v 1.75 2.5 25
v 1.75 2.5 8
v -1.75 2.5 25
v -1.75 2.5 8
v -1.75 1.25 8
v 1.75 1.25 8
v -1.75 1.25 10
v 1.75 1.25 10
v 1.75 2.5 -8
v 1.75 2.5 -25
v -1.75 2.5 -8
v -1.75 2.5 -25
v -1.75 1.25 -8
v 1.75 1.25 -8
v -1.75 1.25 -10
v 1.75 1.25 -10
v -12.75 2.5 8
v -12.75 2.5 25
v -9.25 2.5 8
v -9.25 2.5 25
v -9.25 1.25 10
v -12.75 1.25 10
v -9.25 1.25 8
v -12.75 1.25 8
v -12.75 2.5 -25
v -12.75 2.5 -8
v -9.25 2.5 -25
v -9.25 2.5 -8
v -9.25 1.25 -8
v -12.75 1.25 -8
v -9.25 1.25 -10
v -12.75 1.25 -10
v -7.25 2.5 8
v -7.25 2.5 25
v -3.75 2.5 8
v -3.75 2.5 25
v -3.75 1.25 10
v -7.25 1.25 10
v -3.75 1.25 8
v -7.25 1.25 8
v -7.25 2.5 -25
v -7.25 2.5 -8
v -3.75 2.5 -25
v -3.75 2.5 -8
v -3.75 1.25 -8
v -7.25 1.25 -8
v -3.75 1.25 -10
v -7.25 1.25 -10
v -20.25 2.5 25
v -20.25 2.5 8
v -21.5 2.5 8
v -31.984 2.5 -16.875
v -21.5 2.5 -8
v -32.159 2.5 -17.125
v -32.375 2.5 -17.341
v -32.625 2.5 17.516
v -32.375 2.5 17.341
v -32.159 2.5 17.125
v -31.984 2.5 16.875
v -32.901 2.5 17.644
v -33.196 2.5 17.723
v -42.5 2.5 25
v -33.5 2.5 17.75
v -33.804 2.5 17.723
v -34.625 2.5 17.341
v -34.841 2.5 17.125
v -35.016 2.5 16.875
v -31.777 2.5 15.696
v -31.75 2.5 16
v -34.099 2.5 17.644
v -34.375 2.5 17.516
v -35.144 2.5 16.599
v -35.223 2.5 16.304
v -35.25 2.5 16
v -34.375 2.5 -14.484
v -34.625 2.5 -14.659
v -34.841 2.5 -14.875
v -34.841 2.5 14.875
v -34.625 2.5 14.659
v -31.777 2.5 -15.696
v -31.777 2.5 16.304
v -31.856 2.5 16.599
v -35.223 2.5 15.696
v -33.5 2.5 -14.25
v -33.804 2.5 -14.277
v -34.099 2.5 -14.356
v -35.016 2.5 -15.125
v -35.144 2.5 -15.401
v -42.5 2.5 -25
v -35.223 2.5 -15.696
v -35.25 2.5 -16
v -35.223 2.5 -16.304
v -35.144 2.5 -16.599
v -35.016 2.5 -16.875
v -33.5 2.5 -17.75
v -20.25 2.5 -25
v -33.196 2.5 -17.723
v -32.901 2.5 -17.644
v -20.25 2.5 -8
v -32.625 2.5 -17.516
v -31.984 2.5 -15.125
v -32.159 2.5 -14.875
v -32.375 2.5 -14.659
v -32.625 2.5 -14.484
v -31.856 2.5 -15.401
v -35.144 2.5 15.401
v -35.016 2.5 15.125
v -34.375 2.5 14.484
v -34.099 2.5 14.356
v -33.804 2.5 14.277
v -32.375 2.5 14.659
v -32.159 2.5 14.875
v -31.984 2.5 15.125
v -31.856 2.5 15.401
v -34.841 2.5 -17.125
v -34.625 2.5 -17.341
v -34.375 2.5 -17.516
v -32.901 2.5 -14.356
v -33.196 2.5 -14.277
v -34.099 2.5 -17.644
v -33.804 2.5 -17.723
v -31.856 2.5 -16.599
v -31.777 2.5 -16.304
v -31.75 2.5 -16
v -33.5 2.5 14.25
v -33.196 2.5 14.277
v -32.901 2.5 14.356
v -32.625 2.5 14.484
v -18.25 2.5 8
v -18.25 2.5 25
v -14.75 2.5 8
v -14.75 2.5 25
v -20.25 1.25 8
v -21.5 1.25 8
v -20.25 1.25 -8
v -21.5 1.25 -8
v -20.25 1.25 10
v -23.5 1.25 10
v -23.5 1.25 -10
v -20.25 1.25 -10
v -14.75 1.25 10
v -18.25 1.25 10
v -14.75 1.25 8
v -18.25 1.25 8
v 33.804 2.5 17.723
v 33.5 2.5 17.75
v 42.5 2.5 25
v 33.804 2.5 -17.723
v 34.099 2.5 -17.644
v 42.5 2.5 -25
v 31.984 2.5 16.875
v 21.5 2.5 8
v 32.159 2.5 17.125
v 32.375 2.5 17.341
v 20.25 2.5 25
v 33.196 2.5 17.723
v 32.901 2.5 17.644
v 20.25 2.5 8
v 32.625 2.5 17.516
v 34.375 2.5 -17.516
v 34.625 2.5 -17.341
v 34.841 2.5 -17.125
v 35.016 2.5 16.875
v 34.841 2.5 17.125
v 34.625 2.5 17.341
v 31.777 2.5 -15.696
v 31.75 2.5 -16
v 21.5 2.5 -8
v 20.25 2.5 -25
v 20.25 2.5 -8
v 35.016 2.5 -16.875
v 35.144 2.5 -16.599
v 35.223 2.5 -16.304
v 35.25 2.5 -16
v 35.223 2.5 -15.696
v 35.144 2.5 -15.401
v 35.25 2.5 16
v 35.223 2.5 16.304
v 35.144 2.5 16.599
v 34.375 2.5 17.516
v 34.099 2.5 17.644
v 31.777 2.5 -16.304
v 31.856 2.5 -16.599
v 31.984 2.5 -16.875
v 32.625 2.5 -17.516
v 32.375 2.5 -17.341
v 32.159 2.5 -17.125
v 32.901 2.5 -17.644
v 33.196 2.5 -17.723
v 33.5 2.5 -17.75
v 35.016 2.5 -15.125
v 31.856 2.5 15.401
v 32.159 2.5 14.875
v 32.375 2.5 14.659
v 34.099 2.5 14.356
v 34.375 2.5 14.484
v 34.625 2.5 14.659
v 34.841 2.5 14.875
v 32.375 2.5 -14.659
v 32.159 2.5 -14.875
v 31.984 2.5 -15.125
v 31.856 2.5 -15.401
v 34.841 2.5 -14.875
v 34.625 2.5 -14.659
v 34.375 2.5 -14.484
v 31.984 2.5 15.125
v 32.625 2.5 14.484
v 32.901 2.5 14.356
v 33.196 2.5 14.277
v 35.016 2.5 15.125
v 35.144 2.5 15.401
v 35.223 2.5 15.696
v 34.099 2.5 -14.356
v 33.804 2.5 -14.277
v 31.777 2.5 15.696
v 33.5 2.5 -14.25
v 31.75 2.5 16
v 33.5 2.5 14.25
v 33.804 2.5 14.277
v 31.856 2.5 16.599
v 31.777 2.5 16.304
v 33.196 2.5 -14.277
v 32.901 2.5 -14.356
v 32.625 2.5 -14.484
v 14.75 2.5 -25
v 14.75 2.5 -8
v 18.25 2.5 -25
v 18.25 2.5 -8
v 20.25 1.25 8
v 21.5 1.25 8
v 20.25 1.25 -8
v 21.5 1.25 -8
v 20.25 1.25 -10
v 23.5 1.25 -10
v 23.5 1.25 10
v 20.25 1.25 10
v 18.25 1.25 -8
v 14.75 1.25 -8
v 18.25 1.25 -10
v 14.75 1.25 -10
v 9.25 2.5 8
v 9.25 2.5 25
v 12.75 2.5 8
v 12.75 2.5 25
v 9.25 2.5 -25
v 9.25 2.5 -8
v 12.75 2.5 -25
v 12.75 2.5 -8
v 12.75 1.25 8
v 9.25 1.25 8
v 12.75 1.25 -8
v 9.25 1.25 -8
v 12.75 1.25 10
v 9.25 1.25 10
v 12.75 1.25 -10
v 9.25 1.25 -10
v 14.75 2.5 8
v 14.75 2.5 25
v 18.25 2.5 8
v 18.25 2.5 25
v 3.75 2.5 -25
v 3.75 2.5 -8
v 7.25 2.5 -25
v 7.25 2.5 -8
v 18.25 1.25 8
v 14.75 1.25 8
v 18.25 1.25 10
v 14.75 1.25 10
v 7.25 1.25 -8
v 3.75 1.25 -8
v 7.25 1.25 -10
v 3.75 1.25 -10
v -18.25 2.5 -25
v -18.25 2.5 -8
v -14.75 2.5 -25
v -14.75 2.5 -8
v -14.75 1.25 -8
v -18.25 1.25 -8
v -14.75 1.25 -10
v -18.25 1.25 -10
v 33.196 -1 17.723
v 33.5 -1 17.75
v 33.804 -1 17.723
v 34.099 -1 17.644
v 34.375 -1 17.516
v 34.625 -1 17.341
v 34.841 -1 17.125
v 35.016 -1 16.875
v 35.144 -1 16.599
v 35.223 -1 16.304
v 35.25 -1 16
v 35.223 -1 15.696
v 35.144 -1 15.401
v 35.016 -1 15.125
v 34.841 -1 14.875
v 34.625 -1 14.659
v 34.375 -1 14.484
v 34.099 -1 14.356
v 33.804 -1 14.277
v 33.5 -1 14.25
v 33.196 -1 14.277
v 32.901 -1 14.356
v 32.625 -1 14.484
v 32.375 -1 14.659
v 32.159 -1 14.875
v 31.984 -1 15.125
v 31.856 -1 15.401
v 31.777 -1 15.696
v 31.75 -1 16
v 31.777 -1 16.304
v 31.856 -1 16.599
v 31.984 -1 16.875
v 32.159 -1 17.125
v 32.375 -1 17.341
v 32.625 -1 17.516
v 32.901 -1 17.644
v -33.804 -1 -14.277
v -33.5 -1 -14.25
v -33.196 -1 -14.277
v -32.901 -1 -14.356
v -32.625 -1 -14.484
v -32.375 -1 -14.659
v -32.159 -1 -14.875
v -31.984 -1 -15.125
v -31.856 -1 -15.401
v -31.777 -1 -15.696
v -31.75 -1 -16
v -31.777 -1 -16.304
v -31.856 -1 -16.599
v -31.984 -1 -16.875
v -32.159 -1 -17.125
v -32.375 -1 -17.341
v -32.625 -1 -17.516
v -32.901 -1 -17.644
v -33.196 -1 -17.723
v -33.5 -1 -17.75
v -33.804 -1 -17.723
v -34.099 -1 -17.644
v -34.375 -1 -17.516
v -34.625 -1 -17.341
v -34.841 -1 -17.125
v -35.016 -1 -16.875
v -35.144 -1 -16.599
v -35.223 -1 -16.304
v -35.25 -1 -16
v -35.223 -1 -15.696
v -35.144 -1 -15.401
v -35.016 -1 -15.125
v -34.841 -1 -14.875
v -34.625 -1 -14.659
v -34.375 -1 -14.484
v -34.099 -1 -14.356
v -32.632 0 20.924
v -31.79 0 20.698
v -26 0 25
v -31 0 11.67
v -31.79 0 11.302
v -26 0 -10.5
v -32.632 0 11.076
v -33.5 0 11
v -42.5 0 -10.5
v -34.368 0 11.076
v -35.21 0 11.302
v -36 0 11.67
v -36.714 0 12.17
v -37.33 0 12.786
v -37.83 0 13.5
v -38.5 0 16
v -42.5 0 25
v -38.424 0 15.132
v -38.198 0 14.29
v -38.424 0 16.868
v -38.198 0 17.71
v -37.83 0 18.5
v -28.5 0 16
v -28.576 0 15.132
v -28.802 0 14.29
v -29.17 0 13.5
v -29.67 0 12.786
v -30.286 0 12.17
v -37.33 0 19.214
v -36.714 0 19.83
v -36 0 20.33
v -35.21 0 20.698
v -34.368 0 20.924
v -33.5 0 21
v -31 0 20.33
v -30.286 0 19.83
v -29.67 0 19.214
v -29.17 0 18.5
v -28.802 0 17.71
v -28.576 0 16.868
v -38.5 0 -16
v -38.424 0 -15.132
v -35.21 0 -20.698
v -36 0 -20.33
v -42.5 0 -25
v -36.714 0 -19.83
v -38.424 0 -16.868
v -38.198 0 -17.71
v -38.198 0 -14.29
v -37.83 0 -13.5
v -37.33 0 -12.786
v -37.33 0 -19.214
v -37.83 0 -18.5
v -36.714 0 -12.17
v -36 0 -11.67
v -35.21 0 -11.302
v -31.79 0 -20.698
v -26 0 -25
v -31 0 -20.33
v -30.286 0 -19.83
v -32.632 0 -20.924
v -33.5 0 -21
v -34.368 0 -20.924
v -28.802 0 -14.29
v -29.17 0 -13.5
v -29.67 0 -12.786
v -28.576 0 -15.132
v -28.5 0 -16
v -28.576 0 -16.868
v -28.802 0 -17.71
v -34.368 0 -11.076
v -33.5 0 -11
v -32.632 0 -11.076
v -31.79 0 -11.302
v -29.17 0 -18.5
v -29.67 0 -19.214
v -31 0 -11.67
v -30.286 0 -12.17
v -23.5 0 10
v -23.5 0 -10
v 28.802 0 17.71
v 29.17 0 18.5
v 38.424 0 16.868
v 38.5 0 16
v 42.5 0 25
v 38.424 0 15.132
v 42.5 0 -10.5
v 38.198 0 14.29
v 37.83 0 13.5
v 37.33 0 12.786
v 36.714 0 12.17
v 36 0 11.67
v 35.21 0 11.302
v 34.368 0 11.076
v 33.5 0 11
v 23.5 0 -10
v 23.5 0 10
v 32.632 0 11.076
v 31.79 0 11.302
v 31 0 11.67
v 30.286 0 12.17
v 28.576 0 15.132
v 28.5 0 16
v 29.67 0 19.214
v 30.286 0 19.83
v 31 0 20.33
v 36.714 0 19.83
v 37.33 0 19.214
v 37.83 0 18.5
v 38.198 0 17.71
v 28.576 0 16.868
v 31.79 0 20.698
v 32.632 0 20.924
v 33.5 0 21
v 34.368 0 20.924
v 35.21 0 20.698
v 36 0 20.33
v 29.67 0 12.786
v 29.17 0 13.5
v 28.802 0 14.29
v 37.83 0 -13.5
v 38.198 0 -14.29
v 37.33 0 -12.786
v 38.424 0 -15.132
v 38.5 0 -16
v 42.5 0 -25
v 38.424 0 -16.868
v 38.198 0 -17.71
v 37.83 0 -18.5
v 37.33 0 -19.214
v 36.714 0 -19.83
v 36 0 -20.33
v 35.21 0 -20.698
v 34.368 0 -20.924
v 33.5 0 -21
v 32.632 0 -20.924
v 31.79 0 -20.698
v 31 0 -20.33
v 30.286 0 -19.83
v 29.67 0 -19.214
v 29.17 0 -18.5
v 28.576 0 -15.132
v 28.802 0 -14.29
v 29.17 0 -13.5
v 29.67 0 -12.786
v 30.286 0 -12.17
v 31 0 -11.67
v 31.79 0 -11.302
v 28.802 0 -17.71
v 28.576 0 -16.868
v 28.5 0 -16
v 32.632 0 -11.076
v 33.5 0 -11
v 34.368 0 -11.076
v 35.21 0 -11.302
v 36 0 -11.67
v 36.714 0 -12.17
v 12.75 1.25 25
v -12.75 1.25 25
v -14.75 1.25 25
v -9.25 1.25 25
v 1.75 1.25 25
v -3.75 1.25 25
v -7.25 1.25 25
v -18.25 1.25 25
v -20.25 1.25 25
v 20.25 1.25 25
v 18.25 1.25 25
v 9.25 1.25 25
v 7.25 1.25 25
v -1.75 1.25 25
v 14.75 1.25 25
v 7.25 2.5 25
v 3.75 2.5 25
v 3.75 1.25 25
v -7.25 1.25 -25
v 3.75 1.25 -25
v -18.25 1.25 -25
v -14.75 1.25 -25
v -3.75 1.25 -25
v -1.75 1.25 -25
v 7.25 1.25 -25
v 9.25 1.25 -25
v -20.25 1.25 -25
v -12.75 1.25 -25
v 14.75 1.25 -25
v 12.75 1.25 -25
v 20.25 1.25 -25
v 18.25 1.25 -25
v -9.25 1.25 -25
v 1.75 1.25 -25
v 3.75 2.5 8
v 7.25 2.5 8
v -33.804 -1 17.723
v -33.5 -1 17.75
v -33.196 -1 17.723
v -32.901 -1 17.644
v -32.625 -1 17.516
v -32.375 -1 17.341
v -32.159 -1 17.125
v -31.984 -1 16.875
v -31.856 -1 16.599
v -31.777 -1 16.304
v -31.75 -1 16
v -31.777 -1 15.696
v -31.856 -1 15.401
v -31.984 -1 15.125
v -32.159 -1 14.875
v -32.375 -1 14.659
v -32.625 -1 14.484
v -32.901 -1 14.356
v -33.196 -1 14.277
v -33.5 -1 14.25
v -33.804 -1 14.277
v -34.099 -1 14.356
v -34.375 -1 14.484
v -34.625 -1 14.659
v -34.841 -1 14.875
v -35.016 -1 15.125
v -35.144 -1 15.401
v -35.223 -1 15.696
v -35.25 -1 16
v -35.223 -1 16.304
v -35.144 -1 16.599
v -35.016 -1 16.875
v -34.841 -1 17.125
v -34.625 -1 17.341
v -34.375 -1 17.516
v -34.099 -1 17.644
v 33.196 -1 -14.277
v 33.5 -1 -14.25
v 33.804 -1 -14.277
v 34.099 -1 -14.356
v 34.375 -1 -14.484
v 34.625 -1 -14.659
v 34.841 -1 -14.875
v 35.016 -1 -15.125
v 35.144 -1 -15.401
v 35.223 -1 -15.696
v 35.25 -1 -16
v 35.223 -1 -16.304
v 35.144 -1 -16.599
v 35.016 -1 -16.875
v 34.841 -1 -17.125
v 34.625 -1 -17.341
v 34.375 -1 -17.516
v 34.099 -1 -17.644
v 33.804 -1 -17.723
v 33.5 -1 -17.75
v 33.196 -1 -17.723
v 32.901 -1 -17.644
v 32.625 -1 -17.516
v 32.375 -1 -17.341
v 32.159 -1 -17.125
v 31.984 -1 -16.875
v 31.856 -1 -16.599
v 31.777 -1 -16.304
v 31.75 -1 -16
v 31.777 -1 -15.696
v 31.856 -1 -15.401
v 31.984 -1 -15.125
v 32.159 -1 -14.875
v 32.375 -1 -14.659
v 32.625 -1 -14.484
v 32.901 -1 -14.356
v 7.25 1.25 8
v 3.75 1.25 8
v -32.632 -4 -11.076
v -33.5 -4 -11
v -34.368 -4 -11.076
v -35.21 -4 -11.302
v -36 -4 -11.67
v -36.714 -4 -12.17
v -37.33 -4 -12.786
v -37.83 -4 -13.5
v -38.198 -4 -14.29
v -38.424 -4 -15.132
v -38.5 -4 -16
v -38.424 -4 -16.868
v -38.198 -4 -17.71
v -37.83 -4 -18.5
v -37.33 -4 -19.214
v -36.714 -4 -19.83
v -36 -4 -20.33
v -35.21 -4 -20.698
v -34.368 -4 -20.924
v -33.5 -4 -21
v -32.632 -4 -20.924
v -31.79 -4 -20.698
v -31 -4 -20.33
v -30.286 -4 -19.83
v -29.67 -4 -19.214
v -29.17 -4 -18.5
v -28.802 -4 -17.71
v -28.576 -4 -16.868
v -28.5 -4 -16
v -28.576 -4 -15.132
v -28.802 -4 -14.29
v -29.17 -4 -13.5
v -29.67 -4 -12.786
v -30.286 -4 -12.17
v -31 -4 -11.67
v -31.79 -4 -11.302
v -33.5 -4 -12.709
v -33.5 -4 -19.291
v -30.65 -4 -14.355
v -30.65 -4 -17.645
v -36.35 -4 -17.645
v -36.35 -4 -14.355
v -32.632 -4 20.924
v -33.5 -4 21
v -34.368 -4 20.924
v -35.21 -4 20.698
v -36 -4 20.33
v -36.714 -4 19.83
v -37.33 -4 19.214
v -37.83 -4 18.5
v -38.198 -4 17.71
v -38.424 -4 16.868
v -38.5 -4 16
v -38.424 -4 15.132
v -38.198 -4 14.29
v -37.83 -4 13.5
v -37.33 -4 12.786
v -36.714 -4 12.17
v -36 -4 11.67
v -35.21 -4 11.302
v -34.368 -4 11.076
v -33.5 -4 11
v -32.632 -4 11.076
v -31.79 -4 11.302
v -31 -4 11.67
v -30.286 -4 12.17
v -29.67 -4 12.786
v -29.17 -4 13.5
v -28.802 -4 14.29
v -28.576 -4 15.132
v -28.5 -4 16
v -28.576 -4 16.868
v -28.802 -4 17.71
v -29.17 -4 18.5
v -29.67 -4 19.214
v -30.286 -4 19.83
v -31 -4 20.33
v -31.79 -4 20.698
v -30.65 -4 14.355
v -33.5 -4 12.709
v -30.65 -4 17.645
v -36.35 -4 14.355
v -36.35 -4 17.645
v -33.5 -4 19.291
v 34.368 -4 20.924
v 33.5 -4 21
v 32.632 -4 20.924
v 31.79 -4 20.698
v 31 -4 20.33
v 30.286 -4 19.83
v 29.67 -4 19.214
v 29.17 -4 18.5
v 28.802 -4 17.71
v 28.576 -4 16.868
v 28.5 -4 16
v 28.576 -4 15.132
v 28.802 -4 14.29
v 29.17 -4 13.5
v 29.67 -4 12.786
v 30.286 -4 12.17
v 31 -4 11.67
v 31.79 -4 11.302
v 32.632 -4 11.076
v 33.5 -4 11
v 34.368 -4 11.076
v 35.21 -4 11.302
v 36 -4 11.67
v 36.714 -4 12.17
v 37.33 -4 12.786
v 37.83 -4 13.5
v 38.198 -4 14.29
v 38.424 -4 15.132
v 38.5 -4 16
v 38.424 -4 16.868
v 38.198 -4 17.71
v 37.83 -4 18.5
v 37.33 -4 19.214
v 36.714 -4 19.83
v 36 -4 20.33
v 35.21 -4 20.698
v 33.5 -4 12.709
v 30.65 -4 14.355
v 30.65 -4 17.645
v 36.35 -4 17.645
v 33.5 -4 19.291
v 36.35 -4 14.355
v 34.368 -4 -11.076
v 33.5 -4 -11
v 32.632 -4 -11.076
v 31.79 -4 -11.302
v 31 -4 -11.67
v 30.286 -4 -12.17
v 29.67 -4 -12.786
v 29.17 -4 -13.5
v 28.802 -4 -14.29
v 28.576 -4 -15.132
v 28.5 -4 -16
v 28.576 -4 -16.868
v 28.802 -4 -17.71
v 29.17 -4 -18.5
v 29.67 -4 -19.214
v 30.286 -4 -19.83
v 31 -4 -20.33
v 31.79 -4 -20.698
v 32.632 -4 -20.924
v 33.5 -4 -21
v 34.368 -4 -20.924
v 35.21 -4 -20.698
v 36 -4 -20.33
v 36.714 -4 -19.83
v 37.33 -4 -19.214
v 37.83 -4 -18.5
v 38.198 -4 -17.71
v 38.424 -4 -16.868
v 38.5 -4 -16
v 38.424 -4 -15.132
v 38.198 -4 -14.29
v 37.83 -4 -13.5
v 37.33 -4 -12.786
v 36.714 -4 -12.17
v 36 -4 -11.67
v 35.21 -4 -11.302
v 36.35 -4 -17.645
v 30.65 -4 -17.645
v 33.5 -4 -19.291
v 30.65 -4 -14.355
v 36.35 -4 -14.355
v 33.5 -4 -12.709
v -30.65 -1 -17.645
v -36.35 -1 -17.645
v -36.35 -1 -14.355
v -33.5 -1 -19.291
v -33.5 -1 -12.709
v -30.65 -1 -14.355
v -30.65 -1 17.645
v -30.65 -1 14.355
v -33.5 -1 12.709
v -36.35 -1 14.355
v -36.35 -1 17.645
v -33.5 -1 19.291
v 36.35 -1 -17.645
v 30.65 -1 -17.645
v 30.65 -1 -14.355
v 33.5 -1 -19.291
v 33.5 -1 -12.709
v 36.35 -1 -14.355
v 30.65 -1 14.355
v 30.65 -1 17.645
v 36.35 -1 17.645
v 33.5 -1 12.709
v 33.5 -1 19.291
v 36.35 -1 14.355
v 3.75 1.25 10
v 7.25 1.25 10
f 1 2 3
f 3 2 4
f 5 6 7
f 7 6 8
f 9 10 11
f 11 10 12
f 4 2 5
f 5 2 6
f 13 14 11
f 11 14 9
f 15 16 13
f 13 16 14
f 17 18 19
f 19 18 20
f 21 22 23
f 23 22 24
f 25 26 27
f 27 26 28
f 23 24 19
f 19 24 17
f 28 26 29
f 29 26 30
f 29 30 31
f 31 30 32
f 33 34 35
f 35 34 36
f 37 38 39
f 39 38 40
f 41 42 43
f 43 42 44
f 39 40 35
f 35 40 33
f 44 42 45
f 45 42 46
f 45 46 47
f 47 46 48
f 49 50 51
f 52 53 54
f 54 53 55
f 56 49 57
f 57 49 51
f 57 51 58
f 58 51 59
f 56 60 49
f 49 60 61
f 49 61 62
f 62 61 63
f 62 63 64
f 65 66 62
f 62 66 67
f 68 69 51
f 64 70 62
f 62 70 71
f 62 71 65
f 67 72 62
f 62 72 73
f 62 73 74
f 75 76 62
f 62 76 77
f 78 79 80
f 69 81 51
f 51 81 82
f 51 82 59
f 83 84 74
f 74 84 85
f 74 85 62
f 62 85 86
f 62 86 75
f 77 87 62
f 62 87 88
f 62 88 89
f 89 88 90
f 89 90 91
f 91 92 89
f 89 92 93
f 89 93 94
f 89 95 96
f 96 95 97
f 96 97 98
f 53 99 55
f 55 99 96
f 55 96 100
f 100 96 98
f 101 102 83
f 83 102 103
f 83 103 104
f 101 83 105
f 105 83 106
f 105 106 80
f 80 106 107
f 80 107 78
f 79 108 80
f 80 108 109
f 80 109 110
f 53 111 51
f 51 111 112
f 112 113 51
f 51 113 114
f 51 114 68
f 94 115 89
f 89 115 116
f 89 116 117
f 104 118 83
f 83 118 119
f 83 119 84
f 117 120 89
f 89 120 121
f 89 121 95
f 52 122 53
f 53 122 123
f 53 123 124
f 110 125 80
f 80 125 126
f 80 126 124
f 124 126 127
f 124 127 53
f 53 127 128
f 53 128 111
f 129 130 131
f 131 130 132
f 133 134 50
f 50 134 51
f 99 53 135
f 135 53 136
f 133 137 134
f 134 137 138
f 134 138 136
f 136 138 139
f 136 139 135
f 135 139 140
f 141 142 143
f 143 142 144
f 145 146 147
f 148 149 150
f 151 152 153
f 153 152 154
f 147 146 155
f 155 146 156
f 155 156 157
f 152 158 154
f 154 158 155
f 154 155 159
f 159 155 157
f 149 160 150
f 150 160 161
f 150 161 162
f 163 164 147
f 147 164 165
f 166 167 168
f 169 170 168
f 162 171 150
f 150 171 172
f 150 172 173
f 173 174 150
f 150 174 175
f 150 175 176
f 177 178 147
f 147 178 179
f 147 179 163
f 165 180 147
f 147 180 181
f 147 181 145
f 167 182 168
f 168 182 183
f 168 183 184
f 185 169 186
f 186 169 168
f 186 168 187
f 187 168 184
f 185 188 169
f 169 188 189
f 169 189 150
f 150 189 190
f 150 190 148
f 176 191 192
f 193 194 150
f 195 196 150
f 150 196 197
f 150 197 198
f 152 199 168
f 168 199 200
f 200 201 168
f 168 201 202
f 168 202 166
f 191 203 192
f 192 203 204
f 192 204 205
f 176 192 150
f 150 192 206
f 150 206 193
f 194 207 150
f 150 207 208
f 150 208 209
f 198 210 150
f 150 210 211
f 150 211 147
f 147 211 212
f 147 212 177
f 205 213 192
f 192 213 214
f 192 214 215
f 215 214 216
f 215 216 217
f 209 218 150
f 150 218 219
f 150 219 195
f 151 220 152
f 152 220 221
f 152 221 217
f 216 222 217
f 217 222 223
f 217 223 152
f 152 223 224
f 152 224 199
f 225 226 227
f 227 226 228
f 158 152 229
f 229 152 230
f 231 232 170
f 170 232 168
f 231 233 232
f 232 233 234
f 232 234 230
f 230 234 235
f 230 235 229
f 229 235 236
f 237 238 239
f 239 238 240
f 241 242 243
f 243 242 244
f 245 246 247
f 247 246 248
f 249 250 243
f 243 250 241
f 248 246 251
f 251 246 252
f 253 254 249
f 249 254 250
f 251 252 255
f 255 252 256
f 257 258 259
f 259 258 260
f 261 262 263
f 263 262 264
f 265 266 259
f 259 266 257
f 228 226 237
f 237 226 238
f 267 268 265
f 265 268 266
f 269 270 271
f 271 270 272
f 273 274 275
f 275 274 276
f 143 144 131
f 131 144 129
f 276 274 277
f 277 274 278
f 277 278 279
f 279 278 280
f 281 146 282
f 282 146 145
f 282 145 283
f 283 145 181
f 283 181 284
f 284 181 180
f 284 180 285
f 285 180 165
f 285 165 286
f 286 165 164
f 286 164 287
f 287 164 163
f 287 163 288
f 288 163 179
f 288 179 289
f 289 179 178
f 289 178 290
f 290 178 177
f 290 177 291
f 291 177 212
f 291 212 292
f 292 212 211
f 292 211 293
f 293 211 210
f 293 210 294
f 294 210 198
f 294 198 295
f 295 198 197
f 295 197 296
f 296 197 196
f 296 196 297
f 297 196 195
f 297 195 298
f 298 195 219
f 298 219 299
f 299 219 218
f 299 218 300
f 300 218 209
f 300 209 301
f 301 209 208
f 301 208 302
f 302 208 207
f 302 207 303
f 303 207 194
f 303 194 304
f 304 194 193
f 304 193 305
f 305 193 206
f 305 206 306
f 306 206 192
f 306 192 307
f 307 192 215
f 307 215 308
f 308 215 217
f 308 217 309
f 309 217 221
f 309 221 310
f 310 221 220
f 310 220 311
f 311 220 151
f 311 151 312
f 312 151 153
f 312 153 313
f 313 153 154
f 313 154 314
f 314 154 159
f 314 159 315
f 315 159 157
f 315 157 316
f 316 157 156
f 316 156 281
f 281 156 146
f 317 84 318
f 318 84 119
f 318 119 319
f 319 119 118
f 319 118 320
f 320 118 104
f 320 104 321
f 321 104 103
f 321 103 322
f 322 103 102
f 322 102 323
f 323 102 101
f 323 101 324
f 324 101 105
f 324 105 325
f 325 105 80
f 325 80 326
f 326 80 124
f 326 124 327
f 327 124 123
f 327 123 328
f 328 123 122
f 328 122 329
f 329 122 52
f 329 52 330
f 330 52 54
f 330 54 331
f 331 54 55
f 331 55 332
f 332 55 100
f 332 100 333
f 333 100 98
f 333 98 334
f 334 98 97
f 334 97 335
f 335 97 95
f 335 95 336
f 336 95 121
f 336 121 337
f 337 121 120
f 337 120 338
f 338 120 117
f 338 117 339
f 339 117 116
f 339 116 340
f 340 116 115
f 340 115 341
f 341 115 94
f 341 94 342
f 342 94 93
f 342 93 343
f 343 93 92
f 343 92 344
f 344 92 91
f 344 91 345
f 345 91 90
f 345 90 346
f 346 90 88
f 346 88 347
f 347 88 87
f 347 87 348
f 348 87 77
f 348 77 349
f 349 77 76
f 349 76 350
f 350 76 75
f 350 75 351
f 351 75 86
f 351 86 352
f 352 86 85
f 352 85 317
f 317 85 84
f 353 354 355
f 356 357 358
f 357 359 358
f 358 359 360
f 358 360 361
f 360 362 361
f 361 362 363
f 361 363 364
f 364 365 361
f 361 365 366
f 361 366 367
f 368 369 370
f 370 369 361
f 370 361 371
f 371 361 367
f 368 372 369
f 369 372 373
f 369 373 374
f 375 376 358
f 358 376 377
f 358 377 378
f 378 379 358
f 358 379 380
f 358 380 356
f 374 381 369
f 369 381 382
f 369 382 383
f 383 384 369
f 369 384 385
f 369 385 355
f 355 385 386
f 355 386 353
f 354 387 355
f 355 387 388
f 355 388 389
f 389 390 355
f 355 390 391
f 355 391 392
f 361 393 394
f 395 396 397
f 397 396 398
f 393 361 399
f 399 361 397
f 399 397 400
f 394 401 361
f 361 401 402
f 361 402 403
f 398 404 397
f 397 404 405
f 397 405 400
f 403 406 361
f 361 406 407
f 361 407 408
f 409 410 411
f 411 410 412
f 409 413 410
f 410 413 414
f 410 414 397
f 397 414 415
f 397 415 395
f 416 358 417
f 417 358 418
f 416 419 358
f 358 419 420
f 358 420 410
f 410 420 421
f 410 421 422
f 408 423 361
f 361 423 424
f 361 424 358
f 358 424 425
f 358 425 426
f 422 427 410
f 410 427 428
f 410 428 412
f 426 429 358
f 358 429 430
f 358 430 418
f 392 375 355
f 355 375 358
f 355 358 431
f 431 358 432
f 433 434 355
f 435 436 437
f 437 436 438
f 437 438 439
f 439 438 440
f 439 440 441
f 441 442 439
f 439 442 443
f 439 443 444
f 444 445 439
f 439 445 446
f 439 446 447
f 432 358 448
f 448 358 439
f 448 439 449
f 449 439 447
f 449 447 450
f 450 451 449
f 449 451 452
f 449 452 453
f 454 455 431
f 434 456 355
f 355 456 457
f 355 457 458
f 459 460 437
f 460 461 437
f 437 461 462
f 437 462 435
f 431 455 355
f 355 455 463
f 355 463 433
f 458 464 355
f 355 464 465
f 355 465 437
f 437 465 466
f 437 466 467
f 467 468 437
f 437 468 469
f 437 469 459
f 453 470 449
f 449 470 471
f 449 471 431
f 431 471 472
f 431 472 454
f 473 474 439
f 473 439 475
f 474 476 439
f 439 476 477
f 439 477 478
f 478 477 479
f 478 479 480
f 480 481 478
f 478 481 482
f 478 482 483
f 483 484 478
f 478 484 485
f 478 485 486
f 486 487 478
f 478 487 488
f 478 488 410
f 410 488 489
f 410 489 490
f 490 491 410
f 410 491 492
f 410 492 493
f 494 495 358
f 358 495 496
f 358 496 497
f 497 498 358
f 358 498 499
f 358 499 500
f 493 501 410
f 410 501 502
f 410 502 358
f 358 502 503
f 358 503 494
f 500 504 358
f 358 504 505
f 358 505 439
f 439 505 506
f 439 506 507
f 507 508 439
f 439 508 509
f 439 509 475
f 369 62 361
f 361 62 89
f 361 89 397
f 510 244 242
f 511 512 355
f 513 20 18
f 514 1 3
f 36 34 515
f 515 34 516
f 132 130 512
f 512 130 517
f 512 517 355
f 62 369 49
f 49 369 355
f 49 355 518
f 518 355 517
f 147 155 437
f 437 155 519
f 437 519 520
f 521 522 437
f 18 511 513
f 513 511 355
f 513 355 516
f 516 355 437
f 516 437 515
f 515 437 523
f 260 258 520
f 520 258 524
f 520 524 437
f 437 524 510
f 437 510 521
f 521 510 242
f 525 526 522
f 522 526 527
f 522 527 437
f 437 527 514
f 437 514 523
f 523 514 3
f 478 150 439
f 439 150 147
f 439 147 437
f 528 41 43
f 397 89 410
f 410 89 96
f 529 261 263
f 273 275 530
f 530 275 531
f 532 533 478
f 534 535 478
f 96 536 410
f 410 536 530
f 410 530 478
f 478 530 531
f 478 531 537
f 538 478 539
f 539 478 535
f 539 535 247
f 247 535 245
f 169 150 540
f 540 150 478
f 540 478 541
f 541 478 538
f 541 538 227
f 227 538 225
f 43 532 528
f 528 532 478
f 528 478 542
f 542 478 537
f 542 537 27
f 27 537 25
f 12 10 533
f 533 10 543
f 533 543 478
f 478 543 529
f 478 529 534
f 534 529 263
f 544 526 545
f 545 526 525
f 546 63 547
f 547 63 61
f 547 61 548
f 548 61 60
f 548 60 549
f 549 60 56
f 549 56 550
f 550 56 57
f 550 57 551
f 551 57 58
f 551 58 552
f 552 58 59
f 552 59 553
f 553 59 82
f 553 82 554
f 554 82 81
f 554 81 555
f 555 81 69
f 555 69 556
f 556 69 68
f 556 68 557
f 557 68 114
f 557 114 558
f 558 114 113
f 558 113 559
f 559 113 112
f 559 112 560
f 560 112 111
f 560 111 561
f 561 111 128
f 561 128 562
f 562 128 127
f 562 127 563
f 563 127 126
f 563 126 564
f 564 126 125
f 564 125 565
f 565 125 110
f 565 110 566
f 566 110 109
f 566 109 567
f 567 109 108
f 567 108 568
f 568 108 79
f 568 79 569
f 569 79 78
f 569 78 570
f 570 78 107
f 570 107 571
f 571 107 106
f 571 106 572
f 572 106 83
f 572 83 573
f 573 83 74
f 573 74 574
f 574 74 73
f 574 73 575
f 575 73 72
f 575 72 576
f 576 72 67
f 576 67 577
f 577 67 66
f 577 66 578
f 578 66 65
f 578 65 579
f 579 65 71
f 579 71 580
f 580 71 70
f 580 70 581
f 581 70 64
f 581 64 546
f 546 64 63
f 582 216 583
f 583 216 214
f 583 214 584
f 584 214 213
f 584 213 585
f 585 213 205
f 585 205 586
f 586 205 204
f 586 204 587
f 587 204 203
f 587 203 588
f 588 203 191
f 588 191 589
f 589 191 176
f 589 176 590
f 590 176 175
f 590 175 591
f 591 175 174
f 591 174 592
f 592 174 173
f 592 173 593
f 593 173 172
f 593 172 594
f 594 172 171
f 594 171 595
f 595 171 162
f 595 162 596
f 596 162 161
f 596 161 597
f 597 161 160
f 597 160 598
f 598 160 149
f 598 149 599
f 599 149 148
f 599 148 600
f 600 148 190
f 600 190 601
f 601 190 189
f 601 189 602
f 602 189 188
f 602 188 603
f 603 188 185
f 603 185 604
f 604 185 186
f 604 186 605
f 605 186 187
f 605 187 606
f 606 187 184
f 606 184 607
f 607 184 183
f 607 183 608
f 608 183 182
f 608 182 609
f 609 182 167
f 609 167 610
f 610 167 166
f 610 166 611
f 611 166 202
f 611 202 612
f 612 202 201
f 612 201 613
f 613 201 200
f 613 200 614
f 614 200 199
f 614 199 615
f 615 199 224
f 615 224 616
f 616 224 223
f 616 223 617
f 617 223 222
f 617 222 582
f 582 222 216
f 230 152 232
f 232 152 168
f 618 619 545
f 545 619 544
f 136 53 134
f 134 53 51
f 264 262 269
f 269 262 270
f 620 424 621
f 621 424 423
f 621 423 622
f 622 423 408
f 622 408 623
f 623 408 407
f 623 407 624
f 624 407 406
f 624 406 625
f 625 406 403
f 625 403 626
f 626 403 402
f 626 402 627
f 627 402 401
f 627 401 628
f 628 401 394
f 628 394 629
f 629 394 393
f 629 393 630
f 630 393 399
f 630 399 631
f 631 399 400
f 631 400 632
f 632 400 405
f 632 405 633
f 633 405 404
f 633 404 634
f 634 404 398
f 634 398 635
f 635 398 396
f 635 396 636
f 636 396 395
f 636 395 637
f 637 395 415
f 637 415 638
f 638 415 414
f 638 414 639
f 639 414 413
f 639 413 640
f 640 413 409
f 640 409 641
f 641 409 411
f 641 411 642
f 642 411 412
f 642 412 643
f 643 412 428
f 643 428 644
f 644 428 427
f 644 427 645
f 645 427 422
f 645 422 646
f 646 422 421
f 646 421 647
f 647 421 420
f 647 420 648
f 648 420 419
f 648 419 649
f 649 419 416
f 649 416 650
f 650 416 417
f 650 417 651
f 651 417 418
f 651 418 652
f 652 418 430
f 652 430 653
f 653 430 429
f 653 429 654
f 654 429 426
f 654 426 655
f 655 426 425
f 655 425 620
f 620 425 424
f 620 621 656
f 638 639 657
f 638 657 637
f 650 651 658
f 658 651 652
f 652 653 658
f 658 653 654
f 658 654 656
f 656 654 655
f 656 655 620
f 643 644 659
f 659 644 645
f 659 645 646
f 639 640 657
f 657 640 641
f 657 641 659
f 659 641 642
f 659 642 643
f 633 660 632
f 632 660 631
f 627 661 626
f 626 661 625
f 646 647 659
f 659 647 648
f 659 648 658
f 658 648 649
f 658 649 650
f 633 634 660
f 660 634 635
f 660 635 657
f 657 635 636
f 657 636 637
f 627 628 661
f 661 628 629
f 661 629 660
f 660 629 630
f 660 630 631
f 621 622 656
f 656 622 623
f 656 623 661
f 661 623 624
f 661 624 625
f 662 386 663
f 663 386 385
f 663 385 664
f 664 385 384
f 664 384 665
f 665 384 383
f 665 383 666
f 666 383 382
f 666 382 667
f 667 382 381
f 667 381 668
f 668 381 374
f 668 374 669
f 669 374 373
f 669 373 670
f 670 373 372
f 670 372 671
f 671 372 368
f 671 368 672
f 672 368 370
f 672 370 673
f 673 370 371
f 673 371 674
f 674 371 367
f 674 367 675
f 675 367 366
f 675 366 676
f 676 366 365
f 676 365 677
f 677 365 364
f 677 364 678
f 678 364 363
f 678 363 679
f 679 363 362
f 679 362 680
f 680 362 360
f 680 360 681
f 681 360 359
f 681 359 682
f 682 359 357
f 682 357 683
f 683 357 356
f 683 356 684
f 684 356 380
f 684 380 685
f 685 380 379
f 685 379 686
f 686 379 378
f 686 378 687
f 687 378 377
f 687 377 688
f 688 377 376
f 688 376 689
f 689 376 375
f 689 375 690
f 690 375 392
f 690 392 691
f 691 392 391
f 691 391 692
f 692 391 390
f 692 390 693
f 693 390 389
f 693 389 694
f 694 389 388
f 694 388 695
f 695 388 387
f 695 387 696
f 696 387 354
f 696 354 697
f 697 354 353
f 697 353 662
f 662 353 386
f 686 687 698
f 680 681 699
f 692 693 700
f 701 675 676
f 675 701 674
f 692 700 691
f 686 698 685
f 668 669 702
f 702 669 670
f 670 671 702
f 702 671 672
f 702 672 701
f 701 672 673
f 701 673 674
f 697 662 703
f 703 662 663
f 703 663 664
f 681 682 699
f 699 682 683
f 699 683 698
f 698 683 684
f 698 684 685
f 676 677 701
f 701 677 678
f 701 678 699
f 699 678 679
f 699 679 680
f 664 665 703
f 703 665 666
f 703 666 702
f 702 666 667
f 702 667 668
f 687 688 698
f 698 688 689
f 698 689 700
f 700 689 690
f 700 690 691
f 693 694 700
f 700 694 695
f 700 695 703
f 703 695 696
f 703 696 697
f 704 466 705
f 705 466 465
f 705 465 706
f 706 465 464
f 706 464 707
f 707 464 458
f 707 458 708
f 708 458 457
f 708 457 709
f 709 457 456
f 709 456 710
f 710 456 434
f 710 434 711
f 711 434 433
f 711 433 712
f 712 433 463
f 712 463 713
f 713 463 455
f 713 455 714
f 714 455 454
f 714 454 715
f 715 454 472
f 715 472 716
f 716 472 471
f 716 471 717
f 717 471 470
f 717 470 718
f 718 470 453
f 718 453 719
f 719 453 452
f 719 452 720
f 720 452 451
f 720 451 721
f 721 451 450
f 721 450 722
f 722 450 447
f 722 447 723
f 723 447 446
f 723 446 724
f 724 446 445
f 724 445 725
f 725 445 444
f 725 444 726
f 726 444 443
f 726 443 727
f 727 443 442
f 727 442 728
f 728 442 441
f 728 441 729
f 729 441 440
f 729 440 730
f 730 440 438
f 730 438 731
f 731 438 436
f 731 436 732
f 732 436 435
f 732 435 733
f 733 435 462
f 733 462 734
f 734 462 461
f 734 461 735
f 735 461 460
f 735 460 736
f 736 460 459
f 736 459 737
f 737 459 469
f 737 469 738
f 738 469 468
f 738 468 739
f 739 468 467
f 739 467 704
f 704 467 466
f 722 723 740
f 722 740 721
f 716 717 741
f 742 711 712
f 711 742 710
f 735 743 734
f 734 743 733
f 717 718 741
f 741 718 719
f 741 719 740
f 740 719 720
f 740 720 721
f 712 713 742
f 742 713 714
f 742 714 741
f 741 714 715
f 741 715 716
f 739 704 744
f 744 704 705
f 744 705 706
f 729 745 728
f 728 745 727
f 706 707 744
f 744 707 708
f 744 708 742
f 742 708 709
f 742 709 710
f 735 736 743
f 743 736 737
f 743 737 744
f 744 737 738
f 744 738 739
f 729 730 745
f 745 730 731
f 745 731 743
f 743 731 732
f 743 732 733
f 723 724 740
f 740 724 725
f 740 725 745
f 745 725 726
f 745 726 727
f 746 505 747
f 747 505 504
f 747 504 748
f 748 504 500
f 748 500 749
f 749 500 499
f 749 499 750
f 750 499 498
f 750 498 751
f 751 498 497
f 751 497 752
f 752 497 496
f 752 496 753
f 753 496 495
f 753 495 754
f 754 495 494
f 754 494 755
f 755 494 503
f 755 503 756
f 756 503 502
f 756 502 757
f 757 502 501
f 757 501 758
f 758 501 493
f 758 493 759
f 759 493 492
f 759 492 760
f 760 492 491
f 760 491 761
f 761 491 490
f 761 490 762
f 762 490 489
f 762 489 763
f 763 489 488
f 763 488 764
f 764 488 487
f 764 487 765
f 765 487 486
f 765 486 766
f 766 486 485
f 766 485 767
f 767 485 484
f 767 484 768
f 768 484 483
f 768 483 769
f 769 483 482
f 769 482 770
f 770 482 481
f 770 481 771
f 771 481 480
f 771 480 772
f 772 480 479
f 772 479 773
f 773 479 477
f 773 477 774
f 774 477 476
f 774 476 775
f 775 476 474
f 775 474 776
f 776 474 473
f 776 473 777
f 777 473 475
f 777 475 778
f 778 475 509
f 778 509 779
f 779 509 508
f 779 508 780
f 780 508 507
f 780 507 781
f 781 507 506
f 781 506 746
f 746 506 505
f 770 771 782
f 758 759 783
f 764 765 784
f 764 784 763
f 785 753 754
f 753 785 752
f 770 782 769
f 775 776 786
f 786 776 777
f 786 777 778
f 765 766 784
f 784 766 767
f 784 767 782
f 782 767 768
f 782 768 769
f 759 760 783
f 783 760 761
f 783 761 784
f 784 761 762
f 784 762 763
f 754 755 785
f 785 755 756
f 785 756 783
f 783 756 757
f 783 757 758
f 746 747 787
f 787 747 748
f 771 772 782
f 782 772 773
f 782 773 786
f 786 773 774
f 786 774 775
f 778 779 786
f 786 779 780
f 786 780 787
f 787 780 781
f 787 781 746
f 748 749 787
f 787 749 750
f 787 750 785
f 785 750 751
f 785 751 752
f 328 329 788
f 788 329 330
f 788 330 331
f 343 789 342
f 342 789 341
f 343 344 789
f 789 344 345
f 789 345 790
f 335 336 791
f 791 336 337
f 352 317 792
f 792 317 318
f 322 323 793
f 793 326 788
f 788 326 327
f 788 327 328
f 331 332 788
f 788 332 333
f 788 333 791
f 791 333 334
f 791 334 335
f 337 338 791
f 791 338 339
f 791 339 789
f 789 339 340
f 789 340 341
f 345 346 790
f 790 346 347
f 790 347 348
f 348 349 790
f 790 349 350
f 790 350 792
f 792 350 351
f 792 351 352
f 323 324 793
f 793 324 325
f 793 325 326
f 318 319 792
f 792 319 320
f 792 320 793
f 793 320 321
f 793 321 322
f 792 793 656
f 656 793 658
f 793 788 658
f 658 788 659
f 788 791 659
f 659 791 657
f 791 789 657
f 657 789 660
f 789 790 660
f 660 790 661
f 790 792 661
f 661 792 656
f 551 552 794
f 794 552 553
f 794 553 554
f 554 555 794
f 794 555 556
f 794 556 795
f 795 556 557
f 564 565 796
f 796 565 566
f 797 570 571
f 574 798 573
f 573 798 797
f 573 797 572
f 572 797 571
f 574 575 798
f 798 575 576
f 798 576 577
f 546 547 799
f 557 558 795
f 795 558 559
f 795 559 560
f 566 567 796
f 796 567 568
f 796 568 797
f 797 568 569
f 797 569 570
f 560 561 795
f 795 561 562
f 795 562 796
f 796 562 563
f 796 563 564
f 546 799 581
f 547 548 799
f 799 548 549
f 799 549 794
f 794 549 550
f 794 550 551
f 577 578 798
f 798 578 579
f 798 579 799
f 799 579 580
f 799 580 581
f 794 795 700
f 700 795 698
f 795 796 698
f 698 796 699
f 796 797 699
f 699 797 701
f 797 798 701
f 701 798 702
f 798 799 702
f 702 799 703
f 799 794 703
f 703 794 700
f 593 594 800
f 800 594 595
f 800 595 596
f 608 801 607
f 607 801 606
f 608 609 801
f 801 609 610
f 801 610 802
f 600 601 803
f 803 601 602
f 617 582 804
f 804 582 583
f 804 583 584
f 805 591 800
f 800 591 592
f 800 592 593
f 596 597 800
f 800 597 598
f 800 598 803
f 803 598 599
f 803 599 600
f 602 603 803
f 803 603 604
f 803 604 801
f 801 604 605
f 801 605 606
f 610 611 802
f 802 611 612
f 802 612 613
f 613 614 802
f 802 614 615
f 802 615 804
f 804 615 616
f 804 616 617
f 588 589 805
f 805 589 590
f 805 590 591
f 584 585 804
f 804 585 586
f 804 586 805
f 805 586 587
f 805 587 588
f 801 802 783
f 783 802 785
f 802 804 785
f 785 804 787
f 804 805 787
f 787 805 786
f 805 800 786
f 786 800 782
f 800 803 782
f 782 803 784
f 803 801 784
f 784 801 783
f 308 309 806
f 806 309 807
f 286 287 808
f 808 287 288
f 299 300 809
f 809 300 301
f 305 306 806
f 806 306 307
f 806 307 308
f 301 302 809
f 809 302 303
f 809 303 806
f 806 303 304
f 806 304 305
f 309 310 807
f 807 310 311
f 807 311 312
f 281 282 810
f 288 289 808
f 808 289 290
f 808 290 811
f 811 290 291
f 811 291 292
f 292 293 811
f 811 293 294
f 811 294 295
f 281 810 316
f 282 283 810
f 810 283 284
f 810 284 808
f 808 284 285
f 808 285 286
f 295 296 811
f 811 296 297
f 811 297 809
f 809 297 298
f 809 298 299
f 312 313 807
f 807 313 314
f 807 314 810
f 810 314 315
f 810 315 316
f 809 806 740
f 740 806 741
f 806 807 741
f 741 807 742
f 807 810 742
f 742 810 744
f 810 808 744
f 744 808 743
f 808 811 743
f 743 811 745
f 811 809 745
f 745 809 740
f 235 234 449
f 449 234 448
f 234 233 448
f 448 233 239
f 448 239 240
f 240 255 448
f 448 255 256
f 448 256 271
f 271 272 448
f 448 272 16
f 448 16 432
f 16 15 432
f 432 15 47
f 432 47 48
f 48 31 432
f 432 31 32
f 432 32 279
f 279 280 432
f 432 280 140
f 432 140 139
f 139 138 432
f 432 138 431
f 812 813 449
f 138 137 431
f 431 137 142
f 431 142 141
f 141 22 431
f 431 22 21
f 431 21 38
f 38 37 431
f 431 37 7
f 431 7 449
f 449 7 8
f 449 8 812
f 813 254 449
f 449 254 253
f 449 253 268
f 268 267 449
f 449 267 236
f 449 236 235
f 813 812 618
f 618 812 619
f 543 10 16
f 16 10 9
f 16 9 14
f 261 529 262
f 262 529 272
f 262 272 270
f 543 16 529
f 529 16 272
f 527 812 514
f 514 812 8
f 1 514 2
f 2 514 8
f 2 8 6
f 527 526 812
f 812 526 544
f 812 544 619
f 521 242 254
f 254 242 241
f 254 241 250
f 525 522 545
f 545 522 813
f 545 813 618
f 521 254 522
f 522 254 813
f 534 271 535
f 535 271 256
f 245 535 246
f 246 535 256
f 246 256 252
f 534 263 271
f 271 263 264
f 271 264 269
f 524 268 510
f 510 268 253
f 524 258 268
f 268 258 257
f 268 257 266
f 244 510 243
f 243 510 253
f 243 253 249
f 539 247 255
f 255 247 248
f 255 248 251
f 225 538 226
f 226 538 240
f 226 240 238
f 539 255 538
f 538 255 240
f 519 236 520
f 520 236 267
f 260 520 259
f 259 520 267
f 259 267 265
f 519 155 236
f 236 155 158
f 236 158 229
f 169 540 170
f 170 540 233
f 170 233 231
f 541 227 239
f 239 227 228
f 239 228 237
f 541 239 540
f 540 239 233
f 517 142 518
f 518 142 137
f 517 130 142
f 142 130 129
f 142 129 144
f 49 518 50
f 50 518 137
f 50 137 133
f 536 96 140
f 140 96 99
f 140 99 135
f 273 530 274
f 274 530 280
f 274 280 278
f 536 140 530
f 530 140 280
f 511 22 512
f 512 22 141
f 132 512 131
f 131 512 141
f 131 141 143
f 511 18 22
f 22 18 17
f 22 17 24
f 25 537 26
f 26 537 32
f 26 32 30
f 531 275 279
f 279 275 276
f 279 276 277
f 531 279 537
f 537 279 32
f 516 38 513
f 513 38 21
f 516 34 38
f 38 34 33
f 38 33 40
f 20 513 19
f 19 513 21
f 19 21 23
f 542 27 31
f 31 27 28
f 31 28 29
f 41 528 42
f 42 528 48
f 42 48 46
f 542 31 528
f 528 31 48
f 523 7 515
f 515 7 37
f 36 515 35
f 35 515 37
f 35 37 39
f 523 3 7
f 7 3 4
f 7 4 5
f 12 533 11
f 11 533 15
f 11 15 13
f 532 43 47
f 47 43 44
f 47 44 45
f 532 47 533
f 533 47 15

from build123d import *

# Parameters (mm, degrees)
SKETCH1_W           = 85
SKETCH1_H           = 50
BASE_PLATE_DEPTH    = 2.5
SKETCH7_R           = 1.75
SCRE_CUT_DEPTH      = 5
SKETCH13_W          = 43
SKETCH13_H          = 16
CUT_EXTRUDE1_DEPTH  = 10
SKETCH15_R          = 5
BOSS_EXTRUDE3_DEPTH = 4
SKETCH18_R          = 1.75
CUT_EXTRUDE4_DEPTH  = 4
M3_NUT_DEPTH        = 3
SKETCH21_W          = 47
SKETCH21_H          = 20
SKETCH21_W_2        = 43
SKETCH21_H_2        = 16
CUT_EXTRUDE7_DEPTH  = 1.25
CUT_EXTRUDE8_REACH  = 67.744
SKETCH20_W          = 2
SKETCH20_H          = 1.25


with BuildPart() as part:
    # Sketch1 → Base Plate (new body)
    with BuildSketch(Plane(origin=(0, 0, 0), x_dir=(1, 0, 0), z_dir=(0, 1, 0))):
        Rectangle(SKETCH1_W, SKETCH1_H)
    extrude(amount=BASE_PLATE_DEPTH)

    # Sketch7 → Scre Cut (cut)
    with BuildSketch(Plane(origin=(0, 2.5, 0), x_dir=(1, 0, 0), z_dir=(0, 1, 0))):
        with Locations(Location((-33.5, 16, 0), (0, 0, 270))):
            Circle(SKETCH7_R)
        with Locations(Location((-33.5, -16, 0), (0, 0, 270))):
            Circle(SKETCH7_R)
        with Locations(Location((33.5, -16, 0), (0, 0, 270))):
            Circle(SKETCH7_R)
        with Locations(Location((33.5, 16, 0), (0, 0, 270))):
            Circle(SKETCH7_R)
    extrude(amount=-SCRE_CUT_DEPTH, mode=Mode.SUBTRACT)

    # Sketch13 → Cut-Extrude1 (cut)
    with BuildSketch(Plane(origin=(0, 2.5, 0), x_dir=(1, 0, 0), z_dir=(0, 1, 0))):
        Rectangle(SKETCH13_W, SKETCH13_H)
    extrude(amount=-CUT_EXTRUDE1_DEPTH, mode=Mode.SUBTRACT)

    # Sketch15 → Boss-Extrude3 (add)
    with BuildSketch(Plane(origin=(-42.5, 0, -25), x_dir=(1, 0, 0), z_dir=(0, -1, 0))):
        with Locations(Location((9, 9, 0), (0, 0, 90))):
            Circle(SKETCH15_R)
        with Locations(Location((9, 41, 0), (0, 0, 90))):
            Circle(SKETCH15_R)
        with Locations(Location((76, 41, 0), (0, 0, 90))):
            Circle(SKETCH15_R)
        with Locations(Location((76, 9, 0), (0, 0, 90))):
            Circle(SKETCH15_R)
    extrude(amount=BOSS_EXTRUDE3_DEPTH)

    # Sketch18 → Cut-Extrude4 (cut)
    with BuildSketch(Plane(origin=(0, 0, 0), x_dir=(1, 0, 0), z_dir=(0, 1, 0))):
        with Locations(Location((-33.5, 16, 0), (0, 0, 270))):
            Circle(SKETCH18_R)
        with Locations(Location((-33.5, -16, 0), (0, 0, 90))):
            Circle(SKETCH18_R)
        with Locations(Location((33.5, 16, 0), (0, 0, 90))):
            Circle(SKETCH18_R)
        with Locations(Location((33.5, -16, 0), (0, 0, 270))):
            Circle(SKETCH18_R)
    extrude(amount=-CUT_EXTRUDE4_DEPTH, mode=Mode.SUBTRACT)

    # Sketch19 → M3 Nut (cut)
    with BuildSketch(Plane.XZ.offset(4)):
        Polygon((-33.5, -12.709103466), (-36.35, -14.354551733), (-36.35, -17.645448267), (-33.5, -19.290896534), (-30.65, -17.645448267), (-30.65, -14.354551733), align=None)
        Polygon((-30.65, 14.354551733), (-33.5, 12.709103466), (-36.35, 14.354551733), (-36.35, 17.645448267), (-33.5, 19.290896534), (-30.65, 17.645448267), align=None)
        Polygon((30.65, -14.354551733), (33.5, -12.709103466), (36.35, -14.354551733), (36.35, -17.645448267), (33.5, -19.290896534), (30.65, -17.645448267), align=None)
        Polygon((33.5, 12.709103466), (36.35, 14.354551733), (36.35, 17.645448267), (33.5, 19.290896534), (30.65, 17.645448267), (30.65, 14.354551733), align=None)
    extrude(amount=-M3_NUT_DEPTH, mode=Mode.SUBTRACT)

    # Sketch21 → Cut-Extrude7 (cut)
    with BuildSketch(Plane.XZ):
        Rectangle(SKETCH21_W, SKETCH21_H)
        Rectangle(SKETCH21_W_2, SKETCH21_H_2, mode=Mode.SUBTRACT)
    extrude(amount=-CUT_EXTRUDE7_DEPTH, mode=Mode.SUBTRACT)

    # Cut-Extrude8: up to this face of the body (flat: up to its plane)
    cut_extrude8_end = Plane(part.part.faces().sort_by_distance((0, 1.25, 25))[0])
    # Sketch20 → Cut-Extrude8 (cut, up to the picked face)
    with BuildSketch(Plane(origin=(0, 0, -25), x_dir=(-1, 0, 0), z_dir=(0, 0, -1)), mode=Mode.PRIVATE) as cut_extrude8_sk1:
        with Locations((-2.75, 1.875)):
            Rectangle(SKETCH20_W, SKETCH20_H)
    cut_extrude8_tool1 = split(extrude(cut_extrude8_sk1.sketch, amount=-CUT_EXTRUDE8_REACH, mode=Mode.PRIVATE), bisect_by=cut_extrude8_end, keep=Keep.BOTH, mode=Mode.PRIVATE)
    # Sketch20 → Cut-Extrude8 (cut, up to the picked face)
    with BuildSketch(Plane(origin=(0, 0, -25), x_dir=(-1, 0, 0), z_dir=(0, 0, -1)), mode=Mode.PRIVATE) as cut_extrude8_sk2:
        with Locations((-8.25, 1.875)):
            Rectangle(SKETCH20_W, SKETCH20_H)
    cut_extrude8_tool2 = split(extrude(cut_extrude8_sk2.sketch, amount=-CUT_EXTRUDE8_REACH, mode=Mode.PRIVATE), bisect_by=cut_extrude8_end, keep=Keep.BOTH, mode=Mode.PRIVATE)
    # Sketch20 → Cut-Extrude8 (cut, up to the picked face)
    with BuildSketch(Plane(origin=(0, 0, -25), x_dir=(-1, 0, 0), z_dir=(0, 0, -1)), mode=Mode.PRIVATE) as cut_extrude8_sk3:
        with Locations((-13.75, 1.875)):
            Rectangle(SKETCH20_W, SKETCH20_H)
    cut_extrude8_tool3 = split(extrude(cut_extrude8_sk3.sketch, amount=-CUT_EXTRUDE8_REACH, mode=Mode.PRIVATE), bisect_by=cut_extrude8_end, keep=Keep.BOTH, mode=Mode.PRIVATE)
    # Sketch20 → Cut-Extrude8 (cut, up to the picked face)
    with BuildSketch(Plane(origin=(0, 0, -25), x_dir=(-1, 0, 0), z_dir=(0, 0, -1)), mode=Mode.PRIVATE) as cut_extrude8_sk4:
        with Locations((-19.25, 1.875)):
            Rectangle(SKETCH20_W, SKETCH20_H)
    cut_extrude8_tool4 = split(extrude(cut_extrude8_sk4.sketch, amount=-CUT_EXTRUDE8_REACH, mode=Mode.PRIVATE), bisect_by=cut_extrude8_end, keep=Keep.BOTH, mode=Mode.PRIVATE)
    # Sketch20 → Cut-Extrude8 (cut, up to the picked face)
    with BuildSketch(Plane(origin=(0, 0, -25), x_dir=(-1, 0, 0), z_dir=(0, 0, -1)), mode=Mode.PRIVATE) as cut_extrude8_sk5:
        with Locations((19.25, 1.875)):
            Rectangle(SKETCH20_W, SKETCH20_H)
    cut_extrude8_tool5 = split(extrude(cut_extrude8_sk5.sketch, amount=-CUT_EXTRUDE8_REACH, mode=Mode.PRIVATE), bisect_by=cut_extrude8_end, keep=Keep.BOTH, mode=Mode.PRIVATE)
    # Sketch20 → Cut-Extrude8 (cut, up to the picked face)
    with BuildSketch(Plane(origin=(0, 0, -25), x_dir=(-1, 0, 0), z_dir=(0, 0, -1)), mode=Mode.PRIVATE) as cut_extrude8_sk6:
        with Locations((13.75, 1.875)):
            Rectangle(SKETCH20_W, SKETCH20_H)
    cut_extrude8_tool6 = split(extrude(cut_extrude8_sk6.sketch, amount=-CUT_EXTRUDE8_REACH, mode=Mode.PRIVATE), bisect_by=cut_extrude8_end, keep=Keep.BOTH, mode=Mode.PRIVATE)
    # Sketch20 → Cut-Extrude8 (cut, up to the picked face)
    with BuildSketch(Plane(origin=(0, 0, -25), x_dir=(-1, 0, 0), z_dir=(0, 0, -1)), mode=Mode.PRIVATE) as cut_extrude8_sk7:
        with Locations((8.25, 1.875)):
            Rectangle(SKETCH20_W, SKETCH20_H)
    cut_extrude8_tool7 = split(extrude(cut_extrude8_sk7.sketch, amount=-CUT_EXTRUDE8_REACH, mode=Mode.PRIVATE), bisect_by=cut_extrude8_end, keep=Keep.BOTH, mode=Mode.PRIVATE)
    # Sketch20 → Cut-Extrude8 (cut, up to the picked face)
    with BuildSketch(Plane(origin=(0, 0, -25), x_dir=(-1, 0, 0), z_dir=(0, 0, -1)), mode=Mode.PRIVATE) as cut_extrude8_sk8:
        with Locations((2.75, 1.875)):
            Rectangle(SKETCH20_W, SKETCH20_H)
    cut_extrude8_tool8 = split(extrude(cut_extrude8_sk8.sketch, amount=-CUT_EXTRUDE8_REACH, mode=Mode.PRIVATE), bisect_by=cut_extrude8_end, keep=Keep.BOTH, mode=Mode.PRIVATE)
    add(cut_extrude8_tool1.solids().sort_by(Axis((2.75, 1.875, -25), (0, 0, 1)))[0], mode=Mode.SUBTRACT)
    add(cut_extrude8_tool2.solids().sort_by(Axis((8.25, 1.875, -25), (0, 0, 1)))[0], mode=Mode.SUBTRACT)
    add(cut_extrude8_tool3.solids().sort_by(Axis((13.75, 1.875, -25), (0, 0, 1)))[0], mode=Mode.SUBTRACT)
    add(cut_extrude8_tool4.solids().sort_by(Axis((19.25, 1.875, -25), (0, 0, 1)))[0], mode=Mode.SUBTRACT)
    add(cut_extrude8_tool5.solids().sort_by(Axis((-19.25, 1.875, -25), (0, 0, 1)))[0], mode=Mode.SUBTRACT)
    add(cut_extrude8_tool6.solids().sort_by(Axis((-13.75, 1.875, -25), (0, 0, 1)))[0], mode=Mode.SUBTRACT)
    add(cut_extrude8_tool7.solids().sort_by(Axis((-8.25, 1.875, -25), (0, 0, 1)))[0], mode=Mode.SUBTRACT)
    add(cut_extrude8_tool8.solids().sort_by(Axis((-2.75, 1.875, -25), (0, 0, 1)))[0], mode=Mode.SUBTRACT)


solid = part.part
